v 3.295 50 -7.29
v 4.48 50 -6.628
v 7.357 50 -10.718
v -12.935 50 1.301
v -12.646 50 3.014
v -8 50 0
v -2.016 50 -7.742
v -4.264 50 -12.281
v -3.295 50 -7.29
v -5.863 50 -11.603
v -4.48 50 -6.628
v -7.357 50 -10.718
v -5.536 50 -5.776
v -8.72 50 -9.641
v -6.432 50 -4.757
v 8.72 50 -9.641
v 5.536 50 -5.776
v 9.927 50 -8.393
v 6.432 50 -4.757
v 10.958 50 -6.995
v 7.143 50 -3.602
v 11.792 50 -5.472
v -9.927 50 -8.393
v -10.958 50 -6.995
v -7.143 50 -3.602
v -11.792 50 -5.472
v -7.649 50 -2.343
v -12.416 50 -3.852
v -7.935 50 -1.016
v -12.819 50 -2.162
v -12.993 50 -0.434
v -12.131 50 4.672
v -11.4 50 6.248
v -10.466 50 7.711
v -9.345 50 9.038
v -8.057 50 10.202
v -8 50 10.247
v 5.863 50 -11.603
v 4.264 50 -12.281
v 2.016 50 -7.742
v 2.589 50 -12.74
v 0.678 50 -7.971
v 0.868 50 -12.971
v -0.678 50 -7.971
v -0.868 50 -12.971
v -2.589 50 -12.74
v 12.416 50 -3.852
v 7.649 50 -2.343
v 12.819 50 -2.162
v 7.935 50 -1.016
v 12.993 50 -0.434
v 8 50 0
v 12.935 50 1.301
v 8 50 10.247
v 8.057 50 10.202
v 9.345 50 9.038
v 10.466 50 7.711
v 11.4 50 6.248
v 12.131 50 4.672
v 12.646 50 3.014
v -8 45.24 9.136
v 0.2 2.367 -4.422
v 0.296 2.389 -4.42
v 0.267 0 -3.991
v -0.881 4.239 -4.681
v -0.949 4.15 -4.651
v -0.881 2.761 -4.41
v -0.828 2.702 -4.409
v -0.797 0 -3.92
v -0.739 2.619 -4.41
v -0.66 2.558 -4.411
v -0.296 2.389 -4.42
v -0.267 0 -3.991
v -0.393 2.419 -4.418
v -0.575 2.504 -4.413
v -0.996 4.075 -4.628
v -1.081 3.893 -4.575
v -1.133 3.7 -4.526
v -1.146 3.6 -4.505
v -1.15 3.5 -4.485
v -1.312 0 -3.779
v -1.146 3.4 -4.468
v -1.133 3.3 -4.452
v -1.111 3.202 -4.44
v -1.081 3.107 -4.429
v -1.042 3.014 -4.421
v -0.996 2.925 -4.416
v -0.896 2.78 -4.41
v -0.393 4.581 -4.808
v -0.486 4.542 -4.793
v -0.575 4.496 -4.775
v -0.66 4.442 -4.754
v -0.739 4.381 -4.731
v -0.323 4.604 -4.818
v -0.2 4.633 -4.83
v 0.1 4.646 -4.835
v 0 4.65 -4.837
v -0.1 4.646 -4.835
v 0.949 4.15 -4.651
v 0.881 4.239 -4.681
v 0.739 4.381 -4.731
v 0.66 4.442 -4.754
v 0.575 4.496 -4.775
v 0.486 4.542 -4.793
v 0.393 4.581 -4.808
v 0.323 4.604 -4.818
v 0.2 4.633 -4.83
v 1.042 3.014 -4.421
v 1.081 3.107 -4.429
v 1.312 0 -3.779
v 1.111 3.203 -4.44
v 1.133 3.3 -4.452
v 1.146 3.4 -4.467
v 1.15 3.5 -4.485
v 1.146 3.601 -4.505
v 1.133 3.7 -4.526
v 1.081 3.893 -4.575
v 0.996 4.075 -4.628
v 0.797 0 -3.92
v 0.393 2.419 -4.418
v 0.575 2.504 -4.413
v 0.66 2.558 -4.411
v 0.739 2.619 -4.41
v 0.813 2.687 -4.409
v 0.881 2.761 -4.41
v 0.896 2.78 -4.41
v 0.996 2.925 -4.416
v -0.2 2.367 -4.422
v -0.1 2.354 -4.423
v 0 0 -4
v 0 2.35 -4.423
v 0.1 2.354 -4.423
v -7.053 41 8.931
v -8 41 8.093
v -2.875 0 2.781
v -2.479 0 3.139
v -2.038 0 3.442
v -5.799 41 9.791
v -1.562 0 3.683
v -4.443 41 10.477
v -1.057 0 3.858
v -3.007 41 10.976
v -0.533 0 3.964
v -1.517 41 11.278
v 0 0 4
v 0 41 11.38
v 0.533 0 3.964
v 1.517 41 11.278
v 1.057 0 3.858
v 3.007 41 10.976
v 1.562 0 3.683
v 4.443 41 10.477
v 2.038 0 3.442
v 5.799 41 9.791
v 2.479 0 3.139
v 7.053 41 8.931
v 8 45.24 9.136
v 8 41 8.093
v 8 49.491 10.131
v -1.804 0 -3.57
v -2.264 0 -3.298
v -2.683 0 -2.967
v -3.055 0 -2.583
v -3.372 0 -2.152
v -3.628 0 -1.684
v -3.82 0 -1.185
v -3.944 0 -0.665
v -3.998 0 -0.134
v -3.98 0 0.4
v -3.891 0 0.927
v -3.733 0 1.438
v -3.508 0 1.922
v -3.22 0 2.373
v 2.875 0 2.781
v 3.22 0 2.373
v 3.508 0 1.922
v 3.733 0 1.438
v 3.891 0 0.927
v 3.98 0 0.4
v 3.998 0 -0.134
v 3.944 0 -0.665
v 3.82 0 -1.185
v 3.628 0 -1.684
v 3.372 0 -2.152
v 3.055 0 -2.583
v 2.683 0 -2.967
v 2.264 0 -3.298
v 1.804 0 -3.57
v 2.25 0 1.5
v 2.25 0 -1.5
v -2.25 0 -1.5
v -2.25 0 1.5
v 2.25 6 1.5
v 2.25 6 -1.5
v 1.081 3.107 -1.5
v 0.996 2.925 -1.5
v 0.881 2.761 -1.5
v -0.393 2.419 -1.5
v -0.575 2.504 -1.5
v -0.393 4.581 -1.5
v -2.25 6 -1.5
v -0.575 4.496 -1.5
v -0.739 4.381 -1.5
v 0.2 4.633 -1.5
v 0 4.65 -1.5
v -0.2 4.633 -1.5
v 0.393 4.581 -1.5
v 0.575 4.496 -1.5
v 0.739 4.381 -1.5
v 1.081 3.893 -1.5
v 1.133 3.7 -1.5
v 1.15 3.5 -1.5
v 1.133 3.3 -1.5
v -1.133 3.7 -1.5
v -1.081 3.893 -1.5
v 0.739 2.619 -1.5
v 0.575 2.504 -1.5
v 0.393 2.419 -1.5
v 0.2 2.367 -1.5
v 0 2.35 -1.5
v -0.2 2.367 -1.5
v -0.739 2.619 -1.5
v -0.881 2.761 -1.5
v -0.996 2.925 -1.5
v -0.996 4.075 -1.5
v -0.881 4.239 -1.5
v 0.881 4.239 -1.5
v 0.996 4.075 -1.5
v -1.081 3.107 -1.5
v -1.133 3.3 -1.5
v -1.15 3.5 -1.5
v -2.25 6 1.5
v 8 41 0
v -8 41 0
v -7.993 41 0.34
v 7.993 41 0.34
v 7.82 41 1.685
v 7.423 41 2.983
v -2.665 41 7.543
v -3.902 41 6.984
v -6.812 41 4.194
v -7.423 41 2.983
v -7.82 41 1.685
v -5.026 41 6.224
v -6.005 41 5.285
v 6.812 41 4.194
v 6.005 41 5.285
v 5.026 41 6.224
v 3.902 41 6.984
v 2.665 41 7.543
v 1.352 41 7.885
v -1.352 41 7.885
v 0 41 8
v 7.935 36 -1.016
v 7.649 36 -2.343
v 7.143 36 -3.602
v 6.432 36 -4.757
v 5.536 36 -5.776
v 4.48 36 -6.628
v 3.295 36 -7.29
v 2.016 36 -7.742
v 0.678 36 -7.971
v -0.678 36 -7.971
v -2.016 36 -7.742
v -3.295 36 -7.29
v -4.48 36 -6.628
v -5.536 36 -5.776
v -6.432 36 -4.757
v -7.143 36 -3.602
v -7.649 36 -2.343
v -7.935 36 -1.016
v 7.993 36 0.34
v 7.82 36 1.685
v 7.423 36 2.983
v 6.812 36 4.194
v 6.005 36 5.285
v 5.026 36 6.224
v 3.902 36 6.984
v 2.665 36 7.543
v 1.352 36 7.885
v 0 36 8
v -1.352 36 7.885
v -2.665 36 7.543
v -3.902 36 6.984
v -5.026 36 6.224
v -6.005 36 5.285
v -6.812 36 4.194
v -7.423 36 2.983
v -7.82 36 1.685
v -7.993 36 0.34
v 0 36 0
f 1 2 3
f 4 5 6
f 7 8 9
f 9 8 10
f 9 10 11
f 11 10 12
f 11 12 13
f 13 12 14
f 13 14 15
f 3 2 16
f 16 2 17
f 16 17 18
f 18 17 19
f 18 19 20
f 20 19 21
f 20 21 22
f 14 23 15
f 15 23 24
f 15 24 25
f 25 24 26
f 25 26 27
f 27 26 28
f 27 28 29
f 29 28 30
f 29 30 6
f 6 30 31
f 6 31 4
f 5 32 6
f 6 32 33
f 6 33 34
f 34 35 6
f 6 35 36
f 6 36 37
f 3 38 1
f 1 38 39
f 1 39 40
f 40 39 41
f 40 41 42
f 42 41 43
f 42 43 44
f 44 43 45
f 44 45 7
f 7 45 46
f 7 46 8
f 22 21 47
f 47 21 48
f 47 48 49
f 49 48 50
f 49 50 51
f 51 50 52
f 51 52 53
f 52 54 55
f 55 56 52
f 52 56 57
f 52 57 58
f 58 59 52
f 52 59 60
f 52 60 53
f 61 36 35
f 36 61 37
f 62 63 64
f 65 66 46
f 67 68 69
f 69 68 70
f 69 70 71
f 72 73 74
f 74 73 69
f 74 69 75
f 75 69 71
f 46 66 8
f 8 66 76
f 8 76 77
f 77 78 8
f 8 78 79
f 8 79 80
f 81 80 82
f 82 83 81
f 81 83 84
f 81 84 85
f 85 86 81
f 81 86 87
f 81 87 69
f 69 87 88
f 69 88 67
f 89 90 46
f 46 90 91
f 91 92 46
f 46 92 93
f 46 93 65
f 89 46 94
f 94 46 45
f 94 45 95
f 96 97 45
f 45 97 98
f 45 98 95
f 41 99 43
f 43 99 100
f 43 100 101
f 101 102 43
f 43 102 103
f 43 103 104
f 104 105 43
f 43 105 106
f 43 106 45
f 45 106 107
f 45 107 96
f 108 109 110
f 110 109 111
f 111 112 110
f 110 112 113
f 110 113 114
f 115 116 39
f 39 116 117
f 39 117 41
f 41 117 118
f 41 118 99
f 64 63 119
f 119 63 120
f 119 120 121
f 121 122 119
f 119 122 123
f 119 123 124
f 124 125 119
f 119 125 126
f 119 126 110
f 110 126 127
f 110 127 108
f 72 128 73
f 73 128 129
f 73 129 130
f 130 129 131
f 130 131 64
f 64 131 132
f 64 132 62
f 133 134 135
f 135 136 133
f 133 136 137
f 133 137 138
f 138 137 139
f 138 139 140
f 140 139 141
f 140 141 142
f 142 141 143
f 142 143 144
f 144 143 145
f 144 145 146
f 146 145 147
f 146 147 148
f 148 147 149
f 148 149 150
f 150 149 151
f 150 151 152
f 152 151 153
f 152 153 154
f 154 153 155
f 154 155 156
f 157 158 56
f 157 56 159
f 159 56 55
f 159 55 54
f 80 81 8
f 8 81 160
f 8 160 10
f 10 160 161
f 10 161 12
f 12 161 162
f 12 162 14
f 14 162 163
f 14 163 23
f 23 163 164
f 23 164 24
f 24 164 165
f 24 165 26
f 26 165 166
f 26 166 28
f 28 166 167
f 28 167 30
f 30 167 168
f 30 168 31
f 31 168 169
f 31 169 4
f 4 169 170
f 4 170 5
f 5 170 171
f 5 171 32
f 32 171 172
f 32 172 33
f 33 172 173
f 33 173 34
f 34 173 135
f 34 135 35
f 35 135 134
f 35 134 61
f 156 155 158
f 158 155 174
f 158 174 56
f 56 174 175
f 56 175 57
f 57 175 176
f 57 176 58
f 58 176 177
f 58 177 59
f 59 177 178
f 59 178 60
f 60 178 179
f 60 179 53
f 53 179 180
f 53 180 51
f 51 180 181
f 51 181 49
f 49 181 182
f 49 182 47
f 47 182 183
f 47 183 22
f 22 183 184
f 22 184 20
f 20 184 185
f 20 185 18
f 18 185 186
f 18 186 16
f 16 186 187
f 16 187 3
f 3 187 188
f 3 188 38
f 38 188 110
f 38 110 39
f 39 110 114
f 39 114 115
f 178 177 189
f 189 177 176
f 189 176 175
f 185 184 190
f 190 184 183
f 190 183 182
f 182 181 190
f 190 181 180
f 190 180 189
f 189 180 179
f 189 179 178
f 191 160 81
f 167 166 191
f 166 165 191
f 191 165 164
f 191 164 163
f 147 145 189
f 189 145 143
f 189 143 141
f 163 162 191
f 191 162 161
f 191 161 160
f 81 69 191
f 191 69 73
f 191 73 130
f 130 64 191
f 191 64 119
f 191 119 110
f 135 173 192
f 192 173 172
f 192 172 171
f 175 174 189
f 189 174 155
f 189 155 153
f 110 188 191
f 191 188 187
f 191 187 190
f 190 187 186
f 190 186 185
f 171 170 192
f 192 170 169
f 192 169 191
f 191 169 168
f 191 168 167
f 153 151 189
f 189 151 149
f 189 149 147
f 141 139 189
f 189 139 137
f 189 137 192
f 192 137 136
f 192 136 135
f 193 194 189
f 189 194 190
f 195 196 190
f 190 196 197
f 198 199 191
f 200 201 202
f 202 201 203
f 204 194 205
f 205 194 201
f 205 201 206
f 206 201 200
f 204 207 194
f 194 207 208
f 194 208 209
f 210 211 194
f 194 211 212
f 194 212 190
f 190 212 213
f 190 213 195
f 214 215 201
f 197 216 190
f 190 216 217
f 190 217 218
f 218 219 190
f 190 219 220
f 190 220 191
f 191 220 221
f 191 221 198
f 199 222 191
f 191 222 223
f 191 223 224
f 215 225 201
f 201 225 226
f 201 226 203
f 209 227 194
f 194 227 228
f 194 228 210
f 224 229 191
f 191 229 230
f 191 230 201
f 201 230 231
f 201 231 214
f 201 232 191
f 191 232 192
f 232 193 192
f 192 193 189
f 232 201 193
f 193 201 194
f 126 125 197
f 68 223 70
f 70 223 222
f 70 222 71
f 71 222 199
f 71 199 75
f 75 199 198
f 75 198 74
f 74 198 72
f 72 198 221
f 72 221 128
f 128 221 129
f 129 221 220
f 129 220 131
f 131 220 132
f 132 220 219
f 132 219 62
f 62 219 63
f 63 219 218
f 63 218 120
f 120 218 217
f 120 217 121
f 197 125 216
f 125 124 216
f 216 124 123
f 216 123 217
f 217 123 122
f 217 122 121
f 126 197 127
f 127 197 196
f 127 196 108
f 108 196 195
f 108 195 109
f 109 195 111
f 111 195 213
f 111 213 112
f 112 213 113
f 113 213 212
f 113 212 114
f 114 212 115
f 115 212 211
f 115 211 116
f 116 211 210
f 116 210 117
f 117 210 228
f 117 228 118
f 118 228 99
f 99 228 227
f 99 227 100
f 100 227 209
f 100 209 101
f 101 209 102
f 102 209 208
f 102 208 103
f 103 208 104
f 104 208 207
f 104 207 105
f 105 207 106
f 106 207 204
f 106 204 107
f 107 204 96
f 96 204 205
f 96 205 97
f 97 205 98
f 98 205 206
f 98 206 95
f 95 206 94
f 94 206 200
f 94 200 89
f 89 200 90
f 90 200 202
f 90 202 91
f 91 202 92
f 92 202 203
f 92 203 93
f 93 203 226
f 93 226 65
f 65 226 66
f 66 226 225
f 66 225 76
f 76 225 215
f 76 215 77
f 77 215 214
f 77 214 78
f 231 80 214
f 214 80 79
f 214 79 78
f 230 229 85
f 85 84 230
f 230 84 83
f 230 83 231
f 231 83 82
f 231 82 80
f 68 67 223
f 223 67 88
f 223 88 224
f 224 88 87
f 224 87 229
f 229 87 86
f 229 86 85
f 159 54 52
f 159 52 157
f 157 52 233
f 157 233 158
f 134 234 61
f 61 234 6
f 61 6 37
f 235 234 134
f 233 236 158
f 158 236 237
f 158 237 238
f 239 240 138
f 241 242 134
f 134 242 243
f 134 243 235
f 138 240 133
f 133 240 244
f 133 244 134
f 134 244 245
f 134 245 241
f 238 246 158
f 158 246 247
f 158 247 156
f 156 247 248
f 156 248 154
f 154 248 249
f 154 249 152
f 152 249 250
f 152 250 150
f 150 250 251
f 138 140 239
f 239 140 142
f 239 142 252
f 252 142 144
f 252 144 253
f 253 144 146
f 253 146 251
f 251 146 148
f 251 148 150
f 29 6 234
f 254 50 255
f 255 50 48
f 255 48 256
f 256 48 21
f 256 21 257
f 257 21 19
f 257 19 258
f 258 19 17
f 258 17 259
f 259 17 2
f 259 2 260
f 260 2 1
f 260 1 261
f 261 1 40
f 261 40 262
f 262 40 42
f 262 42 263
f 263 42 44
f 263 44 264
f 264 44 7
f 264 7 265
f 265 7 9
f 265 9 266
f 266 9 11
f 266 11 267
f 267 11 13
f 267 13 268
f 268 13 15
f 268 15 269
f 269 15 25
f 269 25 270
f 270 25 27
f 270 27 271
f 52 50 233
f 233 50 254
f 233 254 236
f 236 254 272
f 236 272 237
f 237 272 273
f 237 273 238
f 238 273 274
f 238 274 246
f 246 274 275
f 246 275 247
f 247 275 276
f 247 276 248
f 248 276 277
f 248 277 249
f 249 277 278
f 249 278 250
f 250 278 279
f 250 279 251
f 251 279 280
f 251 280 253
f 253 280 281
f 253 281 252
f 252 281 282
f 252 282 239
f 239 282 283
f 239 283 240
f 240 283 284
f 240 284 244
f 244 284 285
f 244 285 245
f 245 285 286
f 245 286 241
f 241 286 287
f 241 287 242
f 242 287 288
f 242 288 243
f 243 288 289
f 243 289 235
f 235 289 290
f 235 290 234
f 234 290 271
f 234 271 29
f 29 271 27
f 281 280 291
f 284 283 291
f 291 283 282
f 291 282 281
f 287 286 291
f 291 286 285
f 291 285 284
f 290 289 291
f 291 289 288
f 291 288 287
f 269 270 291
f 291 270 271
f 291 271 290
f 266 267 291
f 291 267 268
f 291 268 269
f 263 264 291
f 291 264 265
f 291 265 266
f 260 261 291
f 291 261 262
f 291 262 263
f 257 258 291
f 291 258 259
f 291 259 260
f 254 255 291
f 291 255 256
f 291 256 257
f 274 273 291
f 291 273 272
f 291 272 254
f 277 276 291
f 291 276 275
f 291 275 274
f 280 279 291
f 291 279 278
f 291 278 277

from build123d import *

# Parameters (mm, degrees)
SKETCH2_W          = 4.5
SKETCH2_H          = 3
CUT_EXTRUDE1_DEPTH = 6
SKETCH3_R          = 1.15
CUT_EXTRUDE2_DEPTH = 6
CUT_EXTRUDE3_DEPTH = 9
SKETCH5_R          = 8
CUT_EXTRUDE4_DEPTH = 5


with BuildPart() as part:
    # Sketch1 → Revolve1 (revolve)
    with BuildSketch(Plane.XY):
        Polygon((0, 50), (-13, 50), (-4, 0), (0, 0), align=None)
    revolve(axis=Axis((0, 0, 0), (0, 1, 0)))

    # Sketch2 → Cut-Extrude1 (cut)
    with BuildSketch(Plane.XZ):
        Rectangle(SKETCH2_W, SKETCH2_H)
    extrude(amount=-CUT_EXTRUDE1_DEPTH, mode=Mode.SUBTRACT)

    # Sketch3 → Cut-Extrude2 (cut)
    with BuildSketch(Plane.XY.offset(-1.5)):
        with Locations((0, 3.5)):
            Circle(SKETCH3_R)
    extrude(amount=-CUT_EXTRUDE2_DEPTH, mode=Mode.SUBTRACT)

    # Sketch4 → Cut-Extrude3 (cut)
    with BuildSketch(Plane(origin=(0, 50, 0), x_dir=(1, 0, 0), z_dir=(0, 1, 0))):
        with BuildLine():
            Line((-8, 0), (-8, -14.002606367))
            Line((-8, -14.002606367), (8, -14.002606367))
            Line((8, -14.002606367), (8, 0))
            ThreePointArc((8, 0), (0, 8), (-8, 0))
        make_face()
    extrude(amount=-CUT_EXTRUDE3_DEPTH, mode=Mode.SUBTRACT)

    # Sketch5 → Cut-Extrude4 (cut)
    with BuildSketch(Plane(origin=(0, 41, 0), x_dir=(1, 0, 0), z_dir=(0, 1, 0))):
        Circle(SKETCH5_R)
    extrude(amount=-CUT_EXTRUDE4_DEPTH, mode=Mode.SUBTRACT)


solid = part.part
